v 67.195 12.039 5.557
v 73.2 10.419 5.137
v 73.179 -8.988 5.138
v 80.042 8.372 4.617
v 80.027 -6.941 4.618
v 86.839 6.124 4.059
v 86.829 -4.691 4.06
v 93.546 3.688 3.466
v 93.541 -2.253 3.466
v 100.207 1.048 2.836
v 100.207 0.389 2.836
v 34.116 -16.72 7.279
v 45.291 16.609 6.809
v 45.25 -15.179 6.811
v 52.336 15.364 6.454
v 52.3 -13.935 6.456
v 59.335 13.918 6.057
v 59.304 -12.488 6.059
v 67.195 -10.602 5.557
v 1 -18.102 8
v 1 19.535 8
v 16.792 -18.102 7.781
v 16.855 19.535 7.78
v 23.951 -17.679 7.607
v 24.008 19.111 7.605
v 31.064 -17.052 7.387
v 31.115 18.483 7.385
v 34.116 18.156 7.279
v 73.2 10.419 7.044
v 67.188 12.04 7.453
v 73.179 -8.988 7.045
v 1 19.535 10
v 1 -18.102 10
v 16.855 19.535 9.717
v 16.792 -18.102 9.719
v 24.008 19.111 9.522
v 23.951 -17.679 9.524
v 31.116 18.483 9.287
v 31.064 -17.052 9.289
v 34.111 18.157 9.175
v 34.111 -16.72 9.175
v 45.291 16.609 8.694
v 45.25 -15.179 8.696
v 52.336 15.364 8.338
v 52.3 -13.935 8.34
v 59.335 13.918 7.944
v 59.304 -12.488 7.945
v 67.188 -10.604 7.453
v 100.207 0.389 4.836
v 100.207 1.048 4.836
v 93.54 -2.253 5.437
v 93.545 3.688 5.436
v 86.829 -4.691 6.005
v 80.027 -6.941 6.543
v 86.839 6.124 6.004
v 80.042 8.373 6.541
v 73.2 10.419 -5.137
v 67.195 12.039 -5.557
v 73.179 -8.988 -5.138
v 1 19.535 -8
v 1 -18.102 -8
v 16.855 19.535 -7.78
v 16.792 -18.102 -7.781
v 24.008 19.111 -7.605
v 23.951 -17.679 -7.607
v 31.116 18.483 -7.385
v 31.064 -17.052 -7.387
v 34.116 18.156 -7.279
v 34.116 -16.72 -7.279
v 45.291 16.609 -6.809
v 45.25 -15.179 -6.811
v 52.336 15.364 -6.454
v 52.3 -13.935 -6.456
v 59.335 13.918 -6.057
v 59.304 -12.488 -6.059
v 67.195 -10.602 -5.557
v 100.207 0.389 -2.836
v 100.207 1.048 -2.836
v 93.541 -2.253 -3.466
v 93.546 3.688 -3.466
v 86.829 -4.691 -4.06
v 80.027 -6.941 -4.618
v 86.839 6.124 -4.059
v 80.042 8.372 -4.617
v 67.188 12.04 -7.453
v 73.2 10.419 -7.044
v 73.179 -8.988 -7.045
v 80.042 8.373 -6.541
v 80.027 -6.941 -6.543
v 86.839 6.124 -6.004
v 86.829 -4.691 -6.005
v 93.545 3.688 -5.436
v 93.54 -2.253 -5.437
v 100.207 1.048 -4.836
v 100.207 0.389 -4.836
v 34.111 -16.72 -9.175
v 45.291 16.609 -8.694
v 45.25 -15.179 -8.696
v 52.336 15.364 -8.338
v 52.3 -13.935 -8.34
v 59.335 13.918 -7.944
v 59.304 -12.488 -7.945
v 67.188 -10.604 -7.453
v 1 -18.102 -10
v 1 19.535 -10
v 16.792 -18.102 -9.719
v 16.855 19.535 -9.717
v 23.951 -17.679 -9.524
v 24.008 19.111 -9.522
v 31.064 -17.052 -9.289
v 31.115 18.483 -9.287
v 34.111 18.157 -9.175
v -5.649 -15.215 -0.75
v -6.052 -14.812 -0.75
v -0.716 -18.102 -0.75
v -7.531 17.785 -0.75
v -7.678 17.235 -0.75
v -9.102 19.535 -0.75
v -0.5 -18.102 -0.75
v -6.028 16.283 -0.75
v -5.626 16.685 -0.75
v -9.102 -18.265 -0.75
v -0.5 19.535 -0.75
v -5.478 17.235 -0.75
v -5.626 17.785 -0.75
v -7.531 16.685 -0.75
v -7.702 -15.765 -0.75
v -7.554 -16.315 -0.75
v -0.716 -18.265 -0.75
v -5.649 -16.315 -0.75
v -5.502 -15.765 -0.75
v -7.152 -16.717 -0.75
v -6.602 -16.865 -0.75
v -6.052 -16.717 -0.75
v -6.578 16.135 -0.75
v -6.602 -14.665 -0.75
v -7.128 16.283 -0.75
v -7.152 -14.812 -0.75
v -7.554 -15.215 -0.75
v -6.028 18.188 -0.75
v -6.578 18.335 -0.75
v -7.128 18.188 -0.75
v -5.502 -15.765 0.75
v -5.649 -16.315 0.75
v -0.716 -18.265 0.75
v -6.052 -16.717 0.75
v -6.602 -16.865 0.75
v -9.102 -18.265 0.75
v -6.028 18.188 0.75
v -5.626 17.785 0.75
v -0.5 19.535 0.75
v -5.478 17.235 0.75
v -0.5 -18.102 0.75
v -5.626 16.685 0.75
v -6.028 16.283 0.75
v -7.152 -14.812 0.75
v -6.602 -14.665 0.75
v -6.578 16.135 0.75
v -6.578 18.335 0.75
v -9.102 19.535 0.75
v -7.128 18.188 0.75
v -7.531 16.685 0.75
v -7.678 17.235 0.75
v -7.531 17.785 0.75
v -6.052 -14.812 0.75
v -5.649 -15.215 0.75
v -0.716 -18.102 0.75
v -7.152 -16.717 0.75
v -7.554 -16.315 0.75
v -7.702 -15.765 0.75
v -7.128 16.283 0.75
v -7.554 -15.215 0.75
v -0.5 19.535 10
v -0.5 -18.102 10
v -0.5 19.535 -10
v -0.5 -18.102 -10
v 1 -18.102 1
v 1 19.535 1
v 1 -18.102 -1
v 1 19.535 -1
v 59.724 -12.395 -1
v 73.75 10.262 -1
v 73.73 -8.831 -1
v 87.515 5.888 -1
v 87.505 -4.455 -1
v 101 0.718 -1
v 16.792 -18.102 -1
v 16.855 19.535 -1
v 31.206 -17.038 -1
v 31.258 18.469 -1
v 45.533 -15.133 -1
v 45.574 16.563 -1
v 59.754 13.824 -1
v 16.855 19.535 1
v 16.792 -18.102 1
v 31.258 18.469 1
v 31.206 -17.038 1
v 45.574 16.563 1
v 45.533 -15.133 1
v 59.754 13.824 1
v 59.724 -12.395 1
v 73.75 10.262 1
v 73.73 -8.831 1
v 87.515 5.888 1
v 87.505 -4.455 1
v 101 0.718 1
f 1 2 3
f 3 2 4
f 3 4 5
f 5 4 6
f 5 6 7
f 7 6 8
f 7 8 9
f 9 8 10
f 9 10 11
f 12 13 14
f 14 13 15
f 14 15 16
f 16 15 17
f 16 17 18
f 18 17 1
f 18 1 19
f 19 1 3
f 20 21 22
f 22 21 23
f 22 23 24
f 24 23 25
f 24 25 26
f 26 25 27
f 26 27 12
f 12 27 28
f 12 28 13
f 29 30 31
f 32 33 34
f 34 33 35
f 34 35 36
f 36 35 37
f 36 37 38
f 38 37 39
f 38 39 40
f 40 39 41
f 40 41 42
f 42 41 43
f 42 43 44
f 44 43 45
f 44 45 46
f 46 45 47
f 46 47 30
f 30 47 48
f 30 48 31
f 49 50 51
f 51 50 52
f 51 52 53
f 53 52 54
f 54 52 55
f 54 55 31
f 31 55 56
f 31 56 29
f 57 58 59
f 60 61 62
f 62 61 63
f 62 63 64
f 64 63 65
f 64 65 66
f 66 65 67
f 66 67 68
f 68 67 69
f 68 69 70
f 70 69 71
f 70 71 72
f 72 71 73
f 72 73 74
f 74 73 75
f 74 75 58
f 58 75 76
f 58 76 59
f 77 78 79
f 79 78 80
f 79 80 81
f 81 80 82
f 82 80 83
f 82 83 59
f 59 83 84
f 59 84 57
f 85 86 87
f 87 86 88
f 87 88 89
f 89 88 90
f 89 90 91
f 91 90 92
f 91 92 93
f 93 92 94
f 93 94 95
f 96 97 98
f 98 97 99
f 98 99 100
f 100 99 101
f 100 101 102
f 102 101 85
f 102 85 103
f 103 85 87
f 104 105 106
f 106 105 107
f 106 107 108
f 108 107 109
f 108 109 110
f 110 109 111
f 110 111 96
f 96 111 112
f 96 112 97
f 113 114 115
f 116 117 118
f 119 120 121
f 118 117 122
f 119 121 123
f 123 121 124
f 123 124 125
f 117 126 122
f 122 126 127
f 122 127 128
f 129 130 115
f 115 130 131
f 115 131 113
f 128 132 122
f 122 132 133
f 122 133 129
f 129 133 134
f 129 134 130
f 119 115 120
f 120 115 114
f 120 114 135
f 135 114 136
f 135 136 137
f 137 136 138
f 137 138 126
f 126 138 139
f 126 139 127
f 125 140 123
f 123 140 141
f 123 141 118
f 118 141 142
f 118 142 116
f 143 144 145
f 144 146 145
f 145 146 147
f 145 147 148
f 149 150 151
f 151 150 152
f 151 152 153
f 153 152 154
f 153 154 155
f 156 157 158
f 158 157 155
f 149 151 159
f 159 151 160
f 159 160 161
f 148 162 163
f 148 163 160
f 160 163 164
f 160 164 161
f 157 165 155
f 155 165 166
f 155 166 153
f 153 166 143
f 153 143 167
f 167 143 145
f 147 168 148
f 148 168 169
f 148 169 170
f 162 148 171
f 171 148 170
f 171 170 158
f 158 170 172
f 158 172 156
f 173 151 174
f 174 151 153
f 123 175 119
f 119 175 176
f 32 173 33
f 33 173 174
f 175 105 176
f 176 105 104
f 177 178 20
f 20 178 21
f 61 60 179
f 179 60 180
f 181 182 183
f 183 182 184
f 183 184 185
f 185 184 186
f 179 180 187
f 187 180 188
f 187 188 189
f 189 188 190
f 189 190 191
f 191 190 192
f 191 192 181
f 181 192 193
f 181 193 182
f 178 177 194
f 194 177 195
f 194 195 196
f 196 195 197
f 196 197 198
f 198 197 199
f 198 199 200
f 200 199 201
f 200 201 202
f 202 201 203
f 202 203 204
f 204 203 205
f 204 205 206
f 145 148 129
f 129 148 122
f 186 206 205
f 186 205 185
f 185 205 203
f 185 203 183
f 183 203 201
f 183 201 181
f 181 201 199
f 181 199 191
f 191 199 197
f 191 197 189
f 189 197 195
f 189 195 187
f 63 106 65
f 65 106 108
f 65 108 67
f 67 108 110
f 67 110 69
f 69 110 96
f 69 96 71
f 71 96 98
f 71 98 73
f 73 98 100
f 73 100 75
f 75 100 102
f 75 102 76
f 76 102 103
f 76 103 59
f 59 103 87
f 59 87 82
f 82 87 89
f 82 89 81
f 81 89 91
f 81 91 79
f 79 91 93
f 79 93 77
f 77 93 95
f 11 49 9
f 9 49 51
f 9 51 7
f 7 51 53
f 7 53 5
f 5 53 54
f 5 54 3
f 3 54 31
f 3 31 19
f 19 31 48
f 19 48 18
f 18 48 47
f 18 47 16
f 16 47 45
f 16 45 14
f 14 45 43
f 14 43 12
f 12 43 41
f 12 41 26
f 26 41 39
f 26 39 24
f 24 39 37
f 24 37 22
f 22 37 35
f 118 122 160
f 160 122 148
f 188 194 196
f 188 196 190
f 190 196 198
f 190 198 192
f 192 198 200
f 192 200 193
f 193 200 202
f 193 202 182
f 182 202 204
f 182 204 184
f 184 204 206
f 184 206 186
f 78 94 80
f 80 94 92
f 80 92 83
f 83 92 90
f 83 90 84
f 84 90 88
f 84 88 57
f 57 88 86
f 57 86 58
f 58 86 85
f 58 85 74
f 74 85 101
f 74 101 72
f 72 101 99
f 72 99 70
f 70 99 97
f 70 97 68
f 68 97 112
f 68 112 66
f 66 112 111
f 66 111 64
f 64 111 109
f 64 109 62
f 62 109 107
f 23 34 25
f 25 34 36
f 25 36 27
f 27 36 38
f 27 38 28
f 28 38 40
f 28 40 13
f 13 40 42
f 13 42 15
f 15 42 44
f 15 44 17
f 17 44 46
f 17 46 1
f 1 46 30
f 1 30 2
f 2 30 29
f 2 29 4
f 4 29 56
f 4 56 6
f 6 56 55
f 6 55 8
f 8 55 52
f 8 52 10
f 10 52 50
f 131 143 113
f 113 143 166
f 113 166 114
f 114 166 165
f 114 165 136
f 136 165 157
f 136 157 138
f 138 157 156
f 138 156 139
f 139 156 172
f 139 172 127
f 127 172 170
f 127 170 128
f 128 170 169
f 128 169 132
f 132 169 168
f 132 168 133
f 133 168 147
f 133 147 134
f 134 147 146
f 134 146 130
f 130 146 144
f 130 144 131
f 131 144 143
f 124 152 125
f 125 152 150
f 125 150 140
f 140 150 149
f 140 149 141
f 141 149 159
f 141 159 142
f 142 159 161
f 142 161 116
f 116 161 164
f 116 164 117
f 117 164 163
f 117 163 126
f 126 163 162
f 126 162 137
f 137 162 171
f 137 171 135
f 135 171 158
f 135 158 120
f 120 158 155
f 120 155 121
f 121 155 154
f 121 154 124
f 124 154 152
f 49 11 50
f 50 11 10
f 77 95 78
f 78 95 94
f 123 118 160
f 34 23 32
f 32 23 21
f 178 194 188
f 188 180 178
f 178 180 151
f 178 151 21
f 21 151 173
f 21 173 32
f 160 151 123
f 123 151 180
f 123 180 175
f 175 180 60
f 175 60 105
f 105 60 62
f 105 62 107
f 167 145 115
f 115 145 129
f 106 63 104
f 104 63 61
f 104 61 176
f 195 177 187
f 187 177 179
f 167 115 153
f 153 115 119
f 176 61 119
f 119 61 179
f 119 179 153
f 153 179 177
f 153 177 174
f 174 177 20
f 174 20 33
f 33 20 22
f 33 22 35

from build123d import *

# Parameters (mm, degrees)
EXTRUDE_1_DEPTH          = 0.75
EXTRUDE_1_DEPTH_BACK     = 0.75
SKETCH_1_W               = 10
SKETCH_1_H               = 38
SKETCH_1_R               = 1.1
SKETCH_3_W               = 20
SKETCH_3_H               = 38.036879249
EXTRUDE_2_DEPTH          = 1.5
EXTRUDE_3_DEPTH          = 1
EXTRUDE_3_DEPTH_BACK     = 1
EXTRUDE_4_DEPTH          = 38
CUT_EXTRUDE_1_DEPTH      = 10
CUT_EXTRUDE_1_DEPTH_BACK = 20
CUT_EXTRUDE_4_DEPTH      = 0.2
CUT_EXTRUDE_4_DEPTH_BACK = 0.2
SKETCH_10_W              = 112.497058814
SKETCH_10_H              = 20.543414641
CUT_EXTRUDE_5_DEPTH      = 0.2
CUT_EXTRUDE_5_DEPTH_BACK = 0.2
SKETCH_11_W              = 104.514605189
SKETCH_11_H              = 21.657747512


with BuildPart() as part:
    # 草圖1 → 填料-伸長1 (new, two sides: drawn at the far end of the back side and taken through both)
    with BuildSketch(Plane.XY.offset(-EXTRUDE_1_DEPTH_BACK)):
        with Locations((-4.101832994, 0.735234216)):
            Rectangle(SKETCH_1_W, SKETCH_1_H)
        with Locations((-6.601832994, -15.764765784)):
            Circle(SKETCH_1_R, mode=Mode.SUBTRACT)
        with Locations((-6.578411405, 17.235234216)):
            Circle(SKETCH_1_R, mode=Mode.SUBTRACT)
    extrude(amount=EXTRUDE_1_DEPTH + EXTRUDE_1_DEPTH_BACK)

    # 草圖3 → 填料-伸長2 (add)
    with BuildSketch(Plane(origin=(-0.5, 0, 0), x_dir=(0, 0, -1), z_dir=(1, 0, 0))):
        with Locations((0, 0.716794592)):
            Rectangle(SKETCH_3_W, SKETCH_3_H)
    extrude(amount=EXTRUDE_2_DEPTH)

    # 草圖4 → 填料-伸長3 (add, two sides: drawn at the far end of the back side and taken through both)
    with BuildSketch(Plane.XY.offset(-EXTRUDE_3_DEPTH_BACK)):
        with BuildLine():
            Line((1, 19.735234216), (1, -18.298860138))
            ThreePointArc((1, -18.298860138), (51.989546932, -13.993809638), (101, 0.718187039))
            ThreePointArc((101, 0.718187039), (51.989546932, 15.430183716), (1, 19.735234216))
        make_face()
    extrude(amount=EXTRUDE_3_DEPTH + EXTRUDE_3_DEPTH_BACK)

    # 草圖5 → 填料-伸長4 (add)
    with BuildSketch(Plane(origin=(0, 19.735234216, 0), x_dir=(1, 0, 0), z_dir=(0, 1, 0))):
        with BuildLine():
            Line((1, -8), (1, -10))
            ThreePointArc((1, -10), (50.655745388, -8.426256946), (100.20651497, -4.835859882))
            Line((100.20651497, -4.835859882), (100.20651497, -2.835859882))
            ThreePointArc((100.20651497, -2.835859882), (50.661805416, -6.542674054), (1, -8))
        make_face()
        with BuildLine():
            Line((100.20651497, 2.835859882), (100.20651497, 4.835859882))
            ThreePointArc((100.20651497, 4.835859882), (50.655745388, 8.426256946), (1, 10))
            Line((1, 10), (1, 8))
            ThreePointArc((1, 8), (50.661805416, 6.542674054), (100.20651497, 2.835859882))
        make_face()
    extrude(amount=-EXTRUDE_4_DEPTH)

    # 草圖8 → 除料-伸長1 (cut, two sides: drawn at the far end of the back side and taken through both)
    with BuildSketch(Plane.XY.offset(10).offset(-CUT_EXTRUDE_1_DEPTH_BACK)):
        with BuildLine():
            Line((13.103688801, -18.23809131), (101, -18.264765784))
            Line((101, -18.264765784), (101, 0.718187039))
            ThreePointArc((101, 0.718187039), (57.921072507, -12.790381672), (13.103688801, -18.23809131))
        make_face()
        with BuildLine():
            ThreePointArc((13.103688801, 19.674465387), (57.921072507, 14.22675575), (101, 0.718187039))
            Line((101, 0.718187039), (101, 19.701139862))
            Line((101, 19.701139862), (13.103688801, 19.674465387))
        make_face()
    extrude(amount=CUT_EXTRUDE_1_DEPTH + CUT_EXTRUDE_1_DEPTH_BACK, mode=Mode.SUBTRACT)

    # 草圖10 → 除料-伸長4 (cut, two sides: drawn at the far end of the back side and taken through both)
    with BuildSketch(Plane(origin=(0, 19.735234216, 0), x_dir=(1, 0, 0), z_dir=(0, 1, 0)).offset(-CUT_EXTRUDE_4_DEPTH_BACK)):
        with Locations((46.49437126, 0.271707321)):
            Rectangle(SKETCH_10_W, SKETCH_10_H)
    extrude(amount=CUT_EXTRUDE_4_DEPTH + CUT_EXTRUDE_4_DEPTH_BACK, mode=Mode.SUBTRACT)

    # 草圖11 → 除料-伸長5 (cut, two sides: drawn at the far end of the back side and taken through both)
    with BuildSketch(Plane(origin=(0, -18.301645033, 0), x_dir=(-1, 0, 0), z_dir=(0, -1, 0)).offset(-CUT_EXTRUDE_5_DEPTH_BACK)):
        with Locations((-51.541283716, 0.828873756)):
            Rectangle(SKETCH_11_W, SKETCH_11_H)
    extrude(amount=CUT_EXTRUDE_5_DEPTH + CUT_EXTRUDE_5_DEPTH_BACK, mode=Mode.SUBTRACT)


solid = part.part
